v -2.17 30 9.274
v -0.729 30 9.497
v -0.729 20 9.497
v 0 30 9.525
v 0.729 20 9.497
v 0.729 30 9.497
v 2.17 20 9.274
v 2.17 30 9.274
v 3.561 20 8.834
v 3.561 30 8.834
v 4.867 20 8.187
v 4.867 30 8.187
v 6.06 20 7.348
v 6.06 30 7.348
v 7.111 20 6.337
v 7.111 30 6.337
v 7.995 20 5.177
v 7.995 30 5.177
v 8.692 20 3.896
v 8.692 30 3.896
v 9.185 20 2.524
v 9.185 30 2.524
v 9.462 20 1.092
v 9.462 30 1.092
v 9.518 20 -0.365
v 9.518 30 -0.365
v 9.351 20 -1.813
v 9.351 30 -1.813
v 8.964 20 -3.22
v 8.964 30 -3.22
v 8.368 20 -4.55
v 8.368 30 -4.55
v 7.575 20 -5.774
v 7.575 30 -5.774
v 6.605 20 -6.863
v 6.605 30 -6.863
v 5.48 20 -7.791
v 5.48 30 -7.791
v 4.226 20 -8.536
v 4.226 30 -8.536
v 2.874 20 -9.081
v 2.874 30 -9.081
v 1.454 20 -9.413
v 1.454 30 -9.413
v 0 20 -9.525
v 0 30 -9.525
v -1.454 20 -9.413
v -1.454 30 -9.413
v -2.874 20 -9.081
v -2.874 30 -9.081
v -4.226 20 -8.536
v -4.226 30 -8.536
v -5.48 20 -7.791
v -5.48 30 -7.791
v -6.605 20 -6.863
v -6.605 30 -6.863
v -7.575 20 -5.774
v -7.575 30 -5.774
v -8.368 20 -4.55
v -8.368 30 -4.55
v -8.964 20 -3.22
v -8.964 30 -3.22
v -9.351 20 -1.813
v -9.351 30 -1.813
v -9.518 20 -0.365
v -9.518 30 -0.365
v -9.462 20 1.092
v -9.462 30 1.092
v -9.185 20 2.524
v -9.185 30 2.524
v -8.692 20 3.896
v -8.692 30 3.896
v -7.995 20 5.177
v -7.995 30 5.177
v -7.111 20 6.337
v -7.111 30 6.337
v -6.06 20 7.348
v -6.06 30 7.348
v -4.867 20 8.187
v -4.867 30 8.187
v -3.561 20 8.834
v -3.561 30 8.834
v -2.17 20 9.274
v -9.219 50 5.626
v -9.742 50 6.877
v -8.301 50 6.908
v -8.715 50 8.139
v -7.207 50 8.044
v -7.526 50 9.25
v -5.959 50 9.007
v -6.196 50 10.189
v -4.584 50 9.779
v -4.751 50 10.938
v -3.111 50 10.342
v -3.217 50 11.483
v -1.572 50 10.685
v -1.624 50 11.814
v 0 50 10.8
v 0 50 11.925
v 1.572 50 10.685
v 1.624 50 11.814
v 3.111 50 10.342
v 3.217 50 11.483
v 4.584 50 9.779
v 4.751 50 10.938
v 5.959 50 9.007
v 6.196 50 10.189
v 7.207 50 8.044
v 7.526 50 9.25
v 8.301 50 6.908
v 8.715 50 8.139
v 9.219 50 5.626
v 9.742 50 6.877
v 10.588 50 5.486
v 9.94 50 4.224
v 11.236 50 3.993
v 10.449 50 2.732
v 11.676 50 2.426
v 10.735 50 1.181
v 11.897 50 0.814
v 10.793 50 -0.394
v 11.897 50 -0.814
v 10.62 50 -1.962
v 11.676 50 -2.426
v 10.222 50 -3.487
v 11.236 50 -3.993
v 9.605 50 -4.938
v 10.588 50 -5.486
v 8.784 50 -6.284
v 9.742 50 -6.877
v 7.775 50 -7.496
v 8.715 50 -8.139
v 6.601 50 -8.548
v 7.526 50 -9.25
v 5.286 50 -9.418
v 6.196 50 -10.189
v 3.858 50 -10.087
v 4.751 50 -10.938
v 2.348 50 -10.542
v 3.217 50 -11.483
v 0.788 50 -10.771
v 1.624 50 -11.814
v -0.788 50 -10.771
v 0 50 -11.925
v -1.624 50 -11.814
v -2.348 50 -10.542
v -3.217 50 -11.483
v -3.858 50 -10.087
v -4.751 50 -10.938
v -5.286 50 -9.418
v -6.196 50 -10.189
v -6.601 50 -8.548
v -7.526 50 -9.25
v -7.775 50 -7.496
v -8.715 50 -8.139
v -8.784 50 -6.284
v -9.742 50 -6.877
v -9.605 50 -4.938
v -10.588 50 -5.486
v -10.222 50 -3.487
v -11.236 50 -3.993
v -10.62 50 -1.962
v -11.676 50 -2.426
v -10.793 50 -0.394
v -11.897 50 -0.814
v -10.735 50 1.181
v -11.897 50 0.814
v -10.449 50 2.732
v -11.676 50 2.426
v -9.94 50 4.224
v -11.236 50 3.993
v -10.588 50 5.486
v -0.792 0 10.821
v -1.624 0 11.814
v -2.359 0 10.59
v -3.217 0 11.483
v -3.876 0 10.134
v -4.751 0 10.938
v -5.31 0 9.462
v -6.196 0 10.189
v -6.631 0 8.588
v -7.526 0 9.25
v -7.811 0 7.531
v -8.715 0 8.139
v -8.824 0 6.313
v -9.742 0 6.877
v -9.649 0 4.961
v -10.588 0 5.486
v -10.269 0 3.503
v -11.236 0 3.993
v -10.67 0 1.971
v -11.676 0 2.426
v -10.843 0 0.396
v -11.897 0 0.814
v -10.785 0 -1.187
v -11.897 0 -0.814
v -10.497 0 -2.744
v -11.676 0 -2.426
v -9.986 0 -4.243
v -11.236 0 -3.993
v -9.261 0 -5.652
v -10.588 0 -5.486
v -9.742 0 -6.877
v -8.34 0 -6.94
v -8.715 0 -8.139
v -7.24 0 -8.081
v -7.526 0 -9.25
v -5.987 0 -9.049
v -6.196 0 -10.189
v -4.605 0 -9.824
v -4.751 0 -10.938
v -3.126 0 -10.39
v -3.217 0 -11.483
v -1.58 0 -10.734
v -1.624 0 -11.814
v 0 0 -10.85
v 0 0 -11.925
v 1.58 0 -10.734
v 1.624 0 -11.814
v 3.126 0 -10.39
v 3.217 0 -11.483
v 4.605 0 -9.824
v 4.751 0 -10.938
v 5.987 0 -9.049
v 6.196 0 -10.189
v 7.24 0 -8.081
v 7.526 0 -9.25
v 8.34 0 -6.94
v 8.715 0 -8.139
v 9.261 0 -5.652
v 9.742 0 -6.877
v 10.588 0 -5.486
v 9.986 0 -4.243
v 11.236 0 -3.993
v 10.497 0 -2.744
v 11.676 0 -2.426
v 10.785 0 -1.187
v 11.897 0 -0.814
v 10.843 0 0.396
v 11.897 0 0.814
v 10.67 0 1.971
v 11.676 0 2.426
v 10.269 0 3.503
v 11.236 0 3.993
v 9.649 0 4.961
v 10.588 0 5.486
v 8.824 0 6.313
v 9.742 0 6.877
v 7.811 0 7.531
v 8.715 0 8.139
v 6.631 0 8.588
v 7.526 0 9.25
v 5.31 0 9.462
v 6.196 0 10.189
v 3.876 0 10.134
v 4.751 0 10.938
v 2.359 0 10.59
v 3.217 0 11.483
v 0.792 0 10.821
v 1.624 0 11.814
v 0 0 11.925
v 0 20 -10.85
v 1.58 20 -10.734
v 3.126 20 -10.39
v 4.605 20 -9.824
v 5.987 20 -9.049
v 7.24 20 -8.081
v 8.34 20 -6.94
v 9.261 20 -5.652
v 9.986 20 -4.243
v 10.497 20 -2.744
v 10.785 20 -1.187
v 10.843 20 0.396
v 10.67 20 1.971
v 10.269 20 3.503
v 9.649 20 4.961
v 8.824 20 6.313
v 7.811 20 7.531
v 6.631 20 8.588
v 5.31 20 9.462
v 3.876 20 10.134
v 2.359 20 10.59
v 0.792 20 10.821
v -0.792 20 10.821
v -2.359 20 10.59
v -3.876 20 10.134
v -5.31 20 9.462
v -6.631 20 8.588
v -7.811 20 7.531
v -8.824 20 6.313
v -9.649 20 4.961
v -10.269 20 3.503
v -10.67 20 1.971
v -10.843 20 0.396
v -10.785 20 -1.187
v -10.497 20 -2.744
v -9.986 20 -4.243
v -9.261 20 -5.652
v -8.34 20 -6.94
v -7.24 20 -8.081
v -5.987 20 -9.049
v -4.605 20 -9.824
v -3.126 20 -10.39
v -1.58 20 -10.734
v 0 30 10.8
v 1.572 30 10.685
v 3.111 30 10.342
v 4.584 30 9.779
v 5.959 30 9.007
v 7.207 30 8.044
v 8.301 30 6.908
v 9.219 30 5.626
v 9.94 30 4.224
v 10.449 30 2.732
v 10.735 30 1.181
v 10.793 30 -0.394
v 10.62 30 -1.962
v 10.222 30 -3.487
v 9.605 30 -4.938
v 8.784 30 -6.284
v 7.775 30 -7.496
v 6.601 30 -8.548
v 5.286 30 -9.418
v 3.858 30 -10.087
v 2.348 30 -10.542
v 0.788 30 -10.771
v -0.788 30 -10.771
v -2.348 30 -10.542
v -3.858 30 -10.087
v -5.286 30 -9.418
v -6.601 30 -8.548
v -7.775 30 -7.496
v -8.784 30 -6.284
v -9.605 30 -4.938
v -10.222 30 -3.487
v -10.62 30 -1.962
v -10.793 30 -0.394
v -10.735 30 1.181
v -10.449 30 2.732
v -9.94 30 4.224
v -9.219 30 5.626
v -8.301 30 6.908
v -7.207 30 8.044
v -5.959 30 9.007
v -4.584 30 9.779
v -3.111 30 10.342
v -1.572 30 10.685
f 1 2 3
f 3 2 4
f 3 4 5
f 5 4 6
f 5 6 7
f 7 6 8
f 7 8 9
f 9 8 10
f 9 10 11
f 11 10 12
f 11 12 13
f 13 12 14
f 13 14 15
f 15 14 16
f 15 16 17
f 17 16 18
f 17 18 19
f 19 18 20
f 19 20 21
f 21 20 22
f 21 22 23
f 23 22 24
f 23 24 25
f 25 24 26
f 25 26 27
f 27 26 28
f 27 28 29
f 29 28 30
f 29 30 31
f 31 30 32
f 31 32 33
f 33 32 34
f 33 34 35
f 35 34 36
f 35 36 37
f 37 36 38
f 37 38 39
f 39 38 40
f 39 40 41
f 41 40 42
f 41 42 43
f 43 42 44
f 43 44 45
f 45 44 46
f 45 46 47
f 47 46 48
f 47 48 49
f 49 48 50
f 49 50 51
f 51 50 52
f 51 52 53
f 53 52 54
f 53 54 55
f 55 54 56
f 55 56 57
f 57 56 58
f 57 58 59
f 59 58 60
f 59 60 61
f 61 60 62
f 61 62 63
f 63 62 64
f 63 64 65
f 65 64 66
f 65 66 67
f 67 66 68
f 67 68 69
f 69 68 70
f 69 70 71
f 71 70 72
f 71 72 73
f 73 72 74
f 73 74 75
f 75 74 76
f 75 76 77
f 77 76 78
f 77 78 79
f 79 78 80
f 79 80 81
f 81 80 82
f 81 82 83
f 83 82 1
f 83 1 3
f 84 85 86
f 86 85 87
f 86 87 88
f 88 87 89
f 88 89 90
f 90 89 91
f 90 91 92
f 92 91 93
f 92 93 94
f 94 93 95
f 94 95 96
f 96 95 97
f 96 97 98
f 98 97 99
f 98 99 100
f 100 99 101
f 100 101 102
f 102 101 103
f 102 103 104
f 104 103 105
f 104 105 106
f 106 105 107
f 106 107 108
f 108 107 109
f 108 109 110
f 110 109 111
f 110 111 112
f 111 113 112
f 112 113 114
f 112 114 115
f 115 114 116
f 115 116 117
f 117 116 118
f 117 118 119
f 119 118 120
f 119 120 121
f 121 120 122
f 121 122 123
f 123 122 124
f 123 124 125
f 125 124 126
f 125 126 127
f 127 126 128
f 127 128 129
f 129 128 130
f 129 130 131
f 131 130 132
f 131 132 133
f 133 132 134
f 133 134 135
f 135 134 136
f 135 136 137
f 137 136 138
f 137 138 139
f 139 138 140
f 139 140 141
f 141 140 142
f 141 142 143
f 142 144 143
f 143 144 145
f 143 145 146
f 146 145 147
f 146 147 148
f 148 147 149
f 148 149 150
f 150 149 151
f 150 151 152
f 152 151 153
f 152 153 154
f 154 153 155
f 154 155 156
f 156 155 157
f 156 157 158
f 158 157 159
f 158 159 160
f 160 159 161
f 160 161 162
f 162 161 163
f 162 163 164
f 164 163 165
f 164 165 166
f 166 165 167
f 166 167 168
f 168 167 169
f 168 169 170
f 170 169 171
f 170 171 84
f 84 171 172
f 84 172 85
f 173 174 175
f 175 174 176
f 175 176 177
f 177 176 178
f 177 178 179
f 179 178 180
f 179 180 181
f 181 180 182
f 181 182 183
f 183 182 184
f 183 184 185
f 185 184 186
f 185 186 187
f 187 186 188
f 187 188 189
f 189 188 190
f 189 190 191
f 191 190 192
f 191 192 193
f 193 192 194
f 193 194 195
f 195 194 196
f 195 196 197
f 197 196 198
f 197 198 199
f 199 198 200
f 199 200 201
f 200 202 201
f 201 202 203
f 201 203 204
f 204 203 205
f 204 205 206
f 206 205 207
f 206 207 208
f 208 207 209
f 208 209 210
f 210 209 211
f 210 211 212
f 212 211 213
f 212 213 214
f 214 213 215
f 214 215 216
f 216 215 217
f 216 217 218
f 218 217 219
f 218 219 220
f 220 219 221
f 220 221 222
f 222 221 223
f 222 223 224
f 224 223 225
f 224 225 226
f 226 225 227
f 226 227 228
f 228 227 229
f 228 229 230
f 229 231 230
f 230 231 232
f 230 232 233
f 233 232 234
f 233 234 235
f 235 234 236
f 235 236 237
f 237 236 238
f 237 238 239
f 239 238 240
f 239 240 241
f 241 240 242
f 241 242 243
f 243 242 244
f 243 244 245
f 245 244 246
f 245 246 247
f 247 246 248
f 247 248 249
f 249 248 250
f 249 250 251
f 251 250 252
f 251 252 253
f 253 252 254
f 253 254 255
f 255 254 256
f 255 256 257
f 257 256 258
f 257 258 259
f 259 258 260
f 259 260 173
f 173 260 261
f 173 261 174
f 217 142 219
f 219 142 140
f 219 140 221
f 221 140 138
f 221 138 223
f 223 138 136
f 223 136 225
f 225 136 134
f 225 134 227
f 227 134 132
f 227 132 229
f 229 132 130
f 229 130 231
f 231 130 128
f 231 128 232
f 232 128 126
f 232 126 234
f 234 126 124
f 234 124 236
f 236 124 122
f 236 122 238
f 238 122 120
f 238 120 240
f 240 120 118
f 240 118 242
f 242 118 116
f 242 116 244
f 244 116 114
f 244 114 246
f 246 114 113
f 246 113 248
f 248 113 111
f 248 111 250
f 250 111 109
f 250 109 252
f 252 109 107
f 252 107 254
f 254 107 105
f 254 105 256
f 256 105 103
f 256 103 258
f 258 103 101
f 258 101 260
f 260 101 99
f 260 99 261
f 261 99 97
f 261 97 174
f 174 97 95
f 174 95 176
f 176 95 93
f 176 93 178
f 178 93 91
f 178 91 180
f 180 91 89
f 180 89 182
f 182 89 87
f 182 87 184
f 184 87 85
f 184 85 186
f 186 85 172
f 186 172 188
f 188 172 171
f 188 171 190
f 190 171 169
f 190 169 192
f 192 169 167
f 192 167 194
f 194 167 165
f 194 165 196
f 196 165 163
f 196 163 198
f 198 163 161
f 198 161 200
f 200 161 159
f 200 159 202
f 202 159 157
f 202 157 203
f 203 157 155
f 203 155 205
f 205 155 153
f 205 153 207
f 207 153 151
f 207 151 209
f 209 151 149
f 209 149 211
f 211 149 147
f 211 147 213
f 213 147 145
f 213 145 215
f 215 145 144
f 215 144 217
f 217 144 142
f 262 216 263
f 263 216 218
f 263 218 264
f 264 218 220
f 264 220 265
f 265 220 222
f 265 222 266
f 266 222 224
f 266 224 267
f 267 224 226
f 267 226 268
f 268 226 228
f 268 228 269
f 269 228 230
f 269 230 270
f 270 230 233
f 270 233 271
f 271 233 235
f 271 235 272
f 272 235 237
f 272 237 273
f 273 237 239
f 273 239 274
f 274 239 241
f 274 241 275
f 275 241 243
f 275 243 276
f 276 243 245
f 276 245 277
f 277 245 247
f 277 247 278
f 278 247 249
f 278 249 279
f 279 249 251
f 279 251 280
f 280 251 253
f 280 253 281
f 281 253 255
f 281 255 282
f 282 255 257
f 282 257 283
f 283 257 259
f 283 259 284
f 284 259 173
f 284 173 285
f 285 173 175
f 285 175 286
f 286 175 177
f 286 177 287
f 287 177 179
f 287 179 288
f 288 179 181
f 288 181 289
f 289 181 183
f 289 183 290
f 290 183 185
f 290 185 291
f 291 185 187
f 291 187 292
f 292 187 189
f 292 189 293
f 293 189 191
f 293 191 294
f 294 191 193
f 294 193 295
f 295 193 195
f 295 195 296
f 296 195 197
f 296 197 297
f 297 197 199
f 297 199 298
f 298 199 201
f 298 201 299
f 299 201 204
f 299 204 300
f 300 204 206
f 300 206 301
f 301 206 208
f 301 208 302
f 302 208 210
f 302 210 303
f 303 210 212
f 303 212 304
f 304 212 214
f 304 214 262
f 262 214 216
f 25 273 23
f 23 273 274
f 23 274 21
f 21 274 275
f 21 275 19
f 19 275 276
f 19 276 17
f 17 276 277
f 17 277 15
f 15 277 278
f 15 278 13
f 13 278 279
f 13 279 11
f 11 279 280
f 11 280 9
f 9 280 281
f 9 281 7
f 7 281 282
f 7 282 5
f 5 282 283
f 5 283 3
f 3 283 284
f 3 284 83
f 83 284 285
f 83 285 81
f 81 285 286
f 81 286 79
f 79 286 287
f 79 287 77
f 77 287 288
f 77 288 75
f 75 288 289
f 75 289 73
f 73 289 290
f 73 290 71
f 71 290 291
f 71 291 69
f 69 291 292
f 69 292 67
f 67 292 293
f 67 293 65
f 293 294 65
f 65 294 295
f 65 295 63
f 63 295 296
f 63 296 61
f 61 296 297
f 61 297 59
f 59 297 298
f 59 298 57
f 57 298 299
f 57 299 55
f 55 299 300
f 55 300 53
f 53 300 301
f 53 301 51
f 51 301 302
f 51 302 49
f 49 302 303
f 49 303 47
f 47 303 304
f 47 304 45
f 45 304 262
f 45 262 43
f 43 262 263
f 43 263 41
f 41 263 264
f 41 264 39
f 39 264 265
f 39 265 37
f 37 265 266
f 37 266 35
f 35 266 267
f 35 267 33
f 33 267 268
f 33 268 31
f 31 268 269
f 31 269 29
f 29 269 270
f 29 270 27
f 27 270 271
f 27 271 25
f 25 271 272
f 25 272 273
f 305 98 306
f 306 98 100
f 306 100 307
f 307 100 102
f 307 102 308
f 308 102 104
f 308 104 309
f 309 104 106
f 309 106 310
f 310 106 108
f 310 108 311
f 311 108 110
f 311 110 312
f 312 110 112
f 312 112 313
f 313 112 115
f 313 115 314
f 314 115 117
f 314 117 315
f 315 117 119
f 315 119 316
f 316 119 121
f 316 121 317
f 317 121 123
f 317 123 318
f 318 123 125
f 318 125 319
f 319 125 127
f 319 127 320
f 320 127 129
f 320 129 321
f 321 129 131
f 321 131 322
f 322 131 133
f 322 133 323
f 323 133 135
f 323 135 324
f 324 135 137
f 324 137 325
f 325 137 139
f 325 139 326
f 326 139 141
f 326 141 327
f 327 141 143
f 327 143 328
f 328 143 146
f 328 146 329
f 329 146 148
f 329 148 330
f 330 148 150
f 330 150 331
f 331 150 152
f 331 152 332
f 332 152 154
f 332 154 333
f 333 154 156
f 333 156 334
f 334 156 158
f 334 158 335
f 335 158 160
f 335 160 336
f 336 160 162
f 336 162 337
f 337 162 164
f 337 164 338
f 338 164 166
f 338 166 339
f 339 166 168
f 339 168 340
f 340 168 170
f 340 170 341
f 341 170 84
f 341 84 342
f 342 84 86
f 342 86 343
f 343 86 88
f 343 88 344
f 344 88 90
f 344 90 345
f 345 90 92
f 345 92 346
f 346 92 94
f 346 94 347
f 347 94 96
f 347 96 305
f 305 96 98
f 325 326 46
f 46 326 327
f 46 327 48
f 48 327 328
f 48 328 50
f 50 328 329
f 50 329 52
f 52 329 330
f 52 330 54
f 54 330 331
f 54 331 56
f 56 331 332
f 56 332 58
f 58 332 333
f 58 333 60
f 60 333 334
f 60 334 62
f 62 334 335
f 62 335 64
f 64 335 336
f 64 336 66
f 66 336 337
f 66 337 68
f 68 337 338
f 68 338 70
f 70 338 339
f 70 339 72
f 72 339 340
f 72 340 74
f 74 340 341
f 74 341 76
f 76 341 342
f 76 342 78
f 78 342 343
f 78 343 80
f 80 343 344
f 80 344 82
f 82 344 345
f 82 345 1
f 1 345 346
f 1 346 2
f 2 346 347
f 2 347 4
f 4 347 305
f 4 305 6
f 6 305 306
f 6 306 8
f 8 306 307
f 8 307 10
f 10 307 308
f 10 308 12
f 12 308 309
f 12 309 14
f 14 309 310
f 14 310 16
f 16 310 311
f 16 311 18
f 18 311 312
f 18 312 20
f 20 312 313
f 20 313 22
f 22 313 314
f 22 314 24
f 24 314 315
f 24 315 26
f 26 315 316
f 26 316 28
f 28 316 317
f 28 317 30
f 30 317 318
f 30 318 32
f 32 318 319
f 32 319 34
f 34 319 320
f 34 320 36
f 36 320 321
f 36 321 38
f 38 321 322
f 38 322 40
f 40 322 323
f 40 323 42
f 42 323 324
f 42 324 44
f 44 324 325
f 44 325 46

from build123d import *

# Parameters (mm, degrees)
SKETCH1_R           = 11.925
SKETCH1_R_2         = 9.525
BOSS_EXTRUDE1_DEPTH = 50
SKETCH2_R           = 10.85
CUT_EXTRUDE1_DEPTH  = 20
SKETCH3_R           = 10.8
CUT_EXTRUDE2_DEPTH  = 20


with BuildPart() as part:
    # Sketch1 → Boss-Extrude1 (new body)
    with BuildSketch(Plane(origin=(0, 0, 0), x_dir=(1, 0, 0), z_dir=(0, 1, 0))):
        with Locations(Location((0, 0, 0), (0, 0, 270))):
            Circle(SKETCH1_R)
        with Locations(Location((0, 0, 0), (0, 0, 270))):
            Circle(SKETCH1_R_2, mode=Mode.SUBTRACT)
    extrude(amount=BOSS_EXTRUDE1_DEPTH)

    # Sketch2 → Cut-Extrude1 (cut)
    with BuildSketch(Plane.XZ):
        with Locations(Location((0, 0, 0), (0, 0, 270))):
            Circle(SKETCH2_R)
    extrude(amount=-CUT_EXTRUDE1_DEPTH, mode=Mode.SUBTRACT)

    # Sketch3 → Cut-Extrude2 (cut)
    with BuildSketch(Plane(origin=(0, 50, 0), x_dir=(1, 0, 0), z_dir=(0, 1, 0))):
        with Locations(Location((0, 0, 0), (0, 0, 270))):
            Circle(SKETCH3_R)
    extrude(amount=-CUT_EXTRUDE2_DEPTH, mode=Mode.SUBTRACT)


solid = part.part
